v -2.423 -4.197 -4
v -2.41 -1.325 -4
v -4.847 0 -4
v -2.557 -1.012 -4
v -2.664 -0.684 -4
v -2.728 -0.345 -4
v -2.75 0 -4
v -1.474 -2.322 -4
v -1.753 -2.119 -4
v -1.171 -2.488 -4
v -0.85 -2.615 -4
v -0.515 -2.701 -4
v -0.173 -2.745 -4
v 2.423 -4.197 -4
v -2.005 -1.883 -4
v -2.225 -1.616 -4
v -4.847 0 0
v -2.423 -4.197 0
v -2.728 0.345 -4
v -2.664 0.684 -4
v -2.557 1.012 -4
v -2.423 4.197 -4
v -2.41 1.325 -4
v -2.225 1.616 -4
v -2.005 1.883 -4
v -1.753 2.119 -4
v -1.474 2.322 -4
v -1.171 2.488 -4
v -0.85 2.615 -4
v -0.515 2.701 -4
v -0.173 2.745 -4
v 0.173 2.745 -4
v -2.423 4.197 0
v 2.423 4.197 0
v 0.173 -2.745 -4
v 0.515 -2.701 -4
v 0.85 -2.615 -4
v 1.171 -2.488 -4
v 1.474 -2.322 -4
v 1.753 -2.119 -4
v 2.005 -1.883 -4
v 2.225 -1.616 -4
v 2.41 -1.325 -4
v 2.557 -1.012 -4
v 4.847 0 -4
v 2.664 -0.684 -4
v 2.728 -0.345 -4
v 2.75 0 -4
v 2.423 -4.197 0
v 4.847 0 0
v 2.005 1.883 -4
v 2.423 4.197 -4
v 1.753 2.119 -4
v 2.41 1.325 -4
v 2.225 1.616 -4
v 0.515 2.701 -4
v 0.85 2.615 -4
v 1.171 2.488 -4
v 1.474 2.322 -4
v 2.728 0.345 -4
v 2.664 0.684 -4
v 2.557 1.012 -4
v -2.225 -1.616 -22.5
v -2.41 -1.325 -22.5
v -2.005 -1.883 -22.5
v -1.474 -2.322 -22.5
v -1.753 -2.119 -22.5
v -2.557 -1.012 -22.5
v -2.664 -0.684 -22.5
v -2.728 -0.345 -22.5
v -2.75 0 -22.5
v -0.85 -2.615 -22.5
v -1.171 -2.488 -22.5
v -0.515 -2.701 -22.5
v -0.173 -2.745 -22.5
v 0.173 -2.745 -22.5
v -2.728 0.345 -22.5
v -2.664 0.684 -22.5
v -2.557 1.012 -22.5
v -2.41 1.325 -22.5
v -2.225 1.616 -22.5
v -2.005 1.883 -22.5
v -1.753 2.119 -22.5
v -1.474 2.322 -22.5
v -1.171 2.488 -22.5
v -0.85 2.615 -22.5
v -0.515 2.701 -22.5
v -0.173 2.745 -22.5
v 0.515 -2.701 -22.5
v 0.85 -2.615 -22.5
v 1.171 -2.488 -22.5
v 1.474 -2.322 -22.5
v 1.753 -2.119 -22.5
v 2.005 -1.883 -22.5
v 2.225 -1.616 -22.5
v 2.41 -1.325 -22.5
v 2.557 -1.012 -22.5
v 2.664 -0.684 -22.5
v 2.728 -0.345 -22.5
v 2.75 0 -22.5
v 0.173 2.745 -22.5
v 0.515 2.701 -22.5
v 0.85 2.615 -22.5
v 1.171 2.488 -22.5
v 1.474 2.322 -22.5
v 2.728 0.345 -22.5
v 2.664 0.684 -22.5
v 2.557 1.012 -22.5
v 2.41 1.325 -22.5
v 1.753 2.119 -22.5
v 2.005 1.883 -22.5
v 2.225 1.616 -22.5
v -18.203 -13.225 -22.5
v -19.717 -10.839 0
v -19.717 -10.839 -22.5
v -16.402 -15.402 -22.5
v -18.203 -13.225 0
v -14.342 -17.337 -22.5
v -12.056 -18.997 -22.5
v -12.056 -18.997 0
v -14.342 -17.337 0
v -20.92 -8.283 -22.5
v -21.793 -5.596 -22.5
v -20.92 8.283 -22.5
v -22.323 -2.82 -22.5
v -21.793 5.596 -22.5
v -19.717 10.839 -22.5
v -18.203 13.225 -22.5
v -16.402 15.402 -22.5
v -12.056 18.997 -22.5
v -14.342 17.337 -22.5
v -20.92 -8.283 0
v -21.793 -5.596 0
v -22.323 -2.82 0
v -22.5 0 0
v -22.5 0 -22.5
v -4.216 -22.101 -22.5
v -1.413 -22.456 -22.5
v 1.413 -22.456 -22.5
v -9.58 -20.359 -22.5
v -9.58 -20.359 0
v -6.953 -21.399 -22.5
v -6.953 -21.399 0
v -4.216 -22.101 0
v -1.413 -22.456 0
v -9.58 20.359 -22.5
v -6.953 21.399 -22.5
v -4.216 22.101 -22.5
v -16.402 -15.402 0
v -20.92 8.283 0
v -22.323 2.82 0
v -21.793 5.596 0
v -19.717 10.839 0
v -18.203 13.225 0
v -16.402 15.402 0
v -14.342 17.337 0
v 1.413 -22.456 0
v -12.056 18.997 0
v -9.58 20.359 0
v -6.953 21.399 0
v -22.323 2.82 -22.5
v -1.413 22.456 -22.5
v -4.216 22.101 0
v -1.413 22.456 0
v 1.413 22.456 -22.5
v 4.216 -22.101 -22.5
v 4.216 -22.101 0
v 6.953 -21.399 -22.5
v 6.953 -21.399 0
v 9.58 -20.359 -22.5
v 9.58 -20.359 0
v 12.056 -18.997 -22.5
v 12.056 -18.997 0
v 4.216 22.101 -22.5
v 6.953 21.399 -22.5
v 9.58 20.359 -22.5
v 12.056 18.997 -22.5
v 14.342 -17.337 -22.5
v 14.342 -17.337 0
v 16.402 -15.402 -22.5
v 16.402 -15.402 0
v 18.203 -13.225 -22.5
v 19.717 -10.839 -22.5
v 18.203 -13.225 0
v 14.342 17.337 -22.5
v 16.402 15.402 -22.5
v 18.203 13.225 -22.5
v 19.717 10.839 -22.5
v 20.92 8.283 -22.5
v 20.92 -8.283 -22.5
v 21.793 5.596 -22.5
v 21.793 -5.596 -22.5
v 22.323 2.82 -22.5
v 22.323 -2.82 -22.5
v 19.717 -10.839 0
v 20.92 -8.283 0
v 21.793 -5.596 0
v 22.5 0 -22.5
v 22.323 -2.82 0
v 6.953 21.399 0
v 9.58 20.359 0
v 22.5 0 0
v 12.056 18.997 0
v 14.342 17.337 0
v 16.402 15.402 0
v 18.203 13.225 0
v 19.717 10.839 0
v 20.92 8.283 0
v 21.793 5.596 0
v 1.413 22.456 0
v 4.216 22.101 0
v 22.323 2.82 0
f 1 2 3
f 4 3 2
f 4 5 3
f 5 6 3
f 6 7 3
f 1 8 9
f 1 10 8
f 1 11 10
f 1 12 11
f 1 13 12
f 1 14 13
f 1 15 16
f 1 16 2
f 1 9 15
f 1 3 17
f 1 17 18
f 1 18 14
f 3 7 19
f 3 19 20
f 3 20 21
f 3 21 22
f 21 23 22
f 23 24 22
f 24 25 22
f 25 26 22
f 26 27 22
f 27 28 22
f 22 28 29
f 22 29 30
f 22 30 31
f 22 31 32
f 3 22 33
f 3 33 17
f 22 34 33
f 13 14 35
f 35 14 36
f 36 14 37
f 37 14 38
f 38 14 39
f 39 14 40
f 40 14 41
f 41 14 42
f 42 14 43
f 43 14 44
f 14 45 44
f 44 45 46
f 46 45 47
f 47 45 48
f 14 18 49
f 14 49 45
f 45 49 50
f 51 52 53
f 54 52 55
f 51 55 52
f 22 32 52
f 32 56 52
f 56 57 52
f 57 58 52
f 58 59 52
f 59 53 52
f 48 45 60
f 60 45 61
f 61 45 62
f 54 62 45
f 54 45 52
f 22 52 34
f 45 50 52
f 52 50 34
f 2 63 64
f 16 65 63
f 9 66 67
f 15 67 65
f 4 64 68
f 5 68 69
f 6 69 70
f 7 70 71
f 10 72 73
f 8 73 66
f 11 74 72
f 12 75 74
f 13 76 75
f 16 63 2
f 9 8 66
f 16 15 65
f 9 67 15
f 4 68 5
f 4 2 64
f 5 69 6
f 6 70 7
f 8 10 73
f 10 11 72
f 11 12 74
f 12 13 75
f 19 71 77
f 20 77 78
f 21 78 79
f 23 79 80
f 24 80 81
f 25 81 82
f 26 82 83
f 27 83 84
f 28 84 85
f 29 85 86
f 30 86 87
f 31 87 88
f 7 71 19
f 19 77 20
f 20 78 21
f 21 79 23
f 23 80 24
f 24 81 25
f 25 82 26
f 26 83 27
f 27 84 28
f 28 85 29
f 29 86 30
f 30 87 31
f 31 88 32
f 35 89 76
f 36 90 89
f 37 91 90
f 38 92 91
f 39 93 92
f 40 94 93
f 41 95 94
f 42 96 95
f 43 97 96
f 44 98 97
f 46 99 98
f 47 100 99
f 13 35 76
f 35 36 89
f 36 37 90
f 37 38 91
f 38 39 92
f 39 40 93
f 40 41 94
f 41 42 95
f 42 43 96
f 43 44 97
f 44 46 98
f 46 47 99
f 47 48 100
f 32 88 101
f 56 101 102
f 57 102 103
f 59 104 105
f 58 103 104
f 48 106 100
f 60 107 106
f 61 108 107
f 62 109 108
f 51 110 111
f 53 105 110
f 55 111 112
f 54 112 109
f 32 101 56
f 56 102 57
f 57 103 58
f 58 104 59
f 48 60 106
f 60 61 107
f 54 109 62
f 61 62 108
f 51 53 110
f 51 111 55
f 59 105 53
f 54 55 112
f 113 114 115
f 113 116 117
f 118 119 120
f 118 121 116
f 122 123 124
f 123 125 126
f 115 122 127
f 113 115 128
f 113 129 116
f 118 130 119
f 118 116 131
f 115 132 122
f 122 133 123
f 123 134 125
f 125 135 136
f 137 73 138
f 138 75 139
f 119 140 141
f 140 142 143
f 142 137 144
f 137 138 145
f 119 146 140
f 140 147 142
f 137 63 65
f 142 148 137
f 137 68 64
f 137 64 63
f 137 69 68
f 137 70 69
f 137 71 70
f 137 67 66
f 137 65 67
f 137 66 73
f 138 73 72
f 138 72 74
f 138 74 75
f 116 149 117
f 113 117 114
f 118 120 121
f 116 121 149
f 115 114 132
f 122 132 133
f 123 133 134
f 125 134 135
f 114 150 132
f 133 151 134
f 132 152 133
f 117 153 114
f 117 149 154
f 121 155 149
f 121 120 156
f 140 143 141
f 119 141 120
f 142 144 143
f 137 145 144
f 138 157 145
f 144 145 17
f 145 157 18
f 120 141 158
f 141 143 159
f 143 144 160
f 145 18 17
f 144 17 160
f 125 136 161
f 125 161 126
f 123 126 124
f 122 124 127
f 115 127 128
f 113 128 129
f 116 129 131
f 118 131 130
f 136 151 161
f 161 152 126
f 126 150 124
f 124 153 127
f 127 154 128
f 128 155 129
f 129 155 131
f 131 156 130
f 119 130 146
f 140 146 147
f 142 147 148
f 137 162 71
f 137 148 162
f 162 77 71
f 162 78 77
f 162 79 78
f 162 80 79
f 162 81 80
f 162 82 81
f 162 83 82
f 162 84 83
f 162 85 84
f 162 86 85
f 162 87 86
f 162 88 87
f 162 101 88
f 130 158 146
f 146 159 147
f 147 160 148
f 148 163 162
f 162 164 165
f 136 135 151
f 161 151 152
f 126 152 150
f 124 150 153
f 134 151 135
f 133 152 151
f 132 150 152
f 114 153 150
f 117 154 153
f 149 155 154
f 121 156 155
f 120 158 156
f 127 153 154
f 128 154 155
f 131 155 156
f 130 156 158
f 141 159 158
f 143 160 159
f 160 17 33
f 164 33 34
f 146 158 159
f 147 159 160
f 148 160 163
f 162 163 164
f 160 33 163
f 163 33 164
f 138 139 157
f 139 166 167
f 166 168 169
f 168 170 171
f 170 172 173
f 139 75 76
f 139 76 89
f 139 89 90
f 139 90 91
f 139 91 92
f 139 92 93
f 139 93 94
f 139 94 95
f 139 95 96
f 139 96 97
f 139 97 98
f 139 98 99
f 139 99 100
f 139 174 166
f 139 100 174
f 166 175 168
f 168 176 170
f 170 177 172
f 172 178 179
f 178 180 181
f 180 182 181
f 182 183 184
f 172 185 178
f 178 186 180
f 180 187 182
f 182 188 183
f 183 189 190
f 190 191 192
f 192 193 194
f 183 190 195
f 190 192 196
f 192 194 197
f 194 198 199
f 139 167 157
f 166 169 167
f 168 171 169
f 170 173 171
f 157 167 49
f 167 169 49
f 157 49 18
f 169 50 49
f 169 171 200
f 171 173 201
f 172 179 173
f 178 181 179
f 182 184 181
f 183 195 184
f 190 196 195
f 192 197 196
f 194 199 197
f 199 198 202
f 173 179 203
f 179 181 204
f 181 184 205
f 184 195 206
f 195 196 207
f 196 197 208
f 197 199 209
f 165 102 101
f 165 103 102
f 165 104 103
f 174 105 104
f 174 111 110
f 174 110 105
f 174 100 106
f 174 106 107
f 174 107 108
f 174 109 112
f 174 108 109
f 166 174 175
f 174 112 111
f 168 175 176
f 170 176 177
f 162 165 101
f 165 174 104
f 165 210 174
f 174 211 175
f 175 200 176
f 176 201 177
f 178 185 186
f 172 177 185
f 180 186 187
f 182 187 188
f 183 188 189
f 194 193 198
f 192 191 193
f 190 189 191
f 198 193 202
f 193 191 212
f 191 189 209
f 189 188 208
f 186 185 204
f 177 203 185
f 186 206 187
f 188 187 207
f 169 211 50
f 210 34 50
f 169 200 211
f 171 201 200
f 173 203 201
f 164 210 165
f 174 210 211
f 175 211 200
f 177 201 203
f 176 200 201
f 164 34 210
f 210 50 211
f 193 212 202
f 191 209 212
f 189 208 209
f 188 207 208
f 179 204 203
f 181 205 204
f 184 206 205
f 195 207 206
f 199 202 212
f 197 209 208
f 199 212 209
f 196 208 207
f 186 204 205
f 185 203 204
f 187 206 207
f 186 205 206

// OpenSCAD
$fn = 50;

difference() {
	union() {
		translate(v = [0, 0, -22.5]) {
			cylinder(h = 22.5, r = 22.5);
		}
	}
	union() {
		translate(v = [0, 0, 0]) {
			rotate(a = [0, 0, 0]) {
				difference() {
					union() {
						translate(v = [0, 0, -4]) {
							linear_extrude(height = 4) {
								polygon(points = [[4.8468, 0.0], [2.4234000000000004, 4.197451927062417], [-2.423399999999999, 4.197451927062417], [-4.8468, 5.935618106107392e-16], [-2.423400000000002, -4.197451927062416], [2.423399999999997, -4.197451927062419]]);
							}
						}
					}
					union();
				}
			}
		}
		#translate(v = [0, 0, -100.0]) {
			cylinder(h = 200, r = 2.75);
		}
	}
}
